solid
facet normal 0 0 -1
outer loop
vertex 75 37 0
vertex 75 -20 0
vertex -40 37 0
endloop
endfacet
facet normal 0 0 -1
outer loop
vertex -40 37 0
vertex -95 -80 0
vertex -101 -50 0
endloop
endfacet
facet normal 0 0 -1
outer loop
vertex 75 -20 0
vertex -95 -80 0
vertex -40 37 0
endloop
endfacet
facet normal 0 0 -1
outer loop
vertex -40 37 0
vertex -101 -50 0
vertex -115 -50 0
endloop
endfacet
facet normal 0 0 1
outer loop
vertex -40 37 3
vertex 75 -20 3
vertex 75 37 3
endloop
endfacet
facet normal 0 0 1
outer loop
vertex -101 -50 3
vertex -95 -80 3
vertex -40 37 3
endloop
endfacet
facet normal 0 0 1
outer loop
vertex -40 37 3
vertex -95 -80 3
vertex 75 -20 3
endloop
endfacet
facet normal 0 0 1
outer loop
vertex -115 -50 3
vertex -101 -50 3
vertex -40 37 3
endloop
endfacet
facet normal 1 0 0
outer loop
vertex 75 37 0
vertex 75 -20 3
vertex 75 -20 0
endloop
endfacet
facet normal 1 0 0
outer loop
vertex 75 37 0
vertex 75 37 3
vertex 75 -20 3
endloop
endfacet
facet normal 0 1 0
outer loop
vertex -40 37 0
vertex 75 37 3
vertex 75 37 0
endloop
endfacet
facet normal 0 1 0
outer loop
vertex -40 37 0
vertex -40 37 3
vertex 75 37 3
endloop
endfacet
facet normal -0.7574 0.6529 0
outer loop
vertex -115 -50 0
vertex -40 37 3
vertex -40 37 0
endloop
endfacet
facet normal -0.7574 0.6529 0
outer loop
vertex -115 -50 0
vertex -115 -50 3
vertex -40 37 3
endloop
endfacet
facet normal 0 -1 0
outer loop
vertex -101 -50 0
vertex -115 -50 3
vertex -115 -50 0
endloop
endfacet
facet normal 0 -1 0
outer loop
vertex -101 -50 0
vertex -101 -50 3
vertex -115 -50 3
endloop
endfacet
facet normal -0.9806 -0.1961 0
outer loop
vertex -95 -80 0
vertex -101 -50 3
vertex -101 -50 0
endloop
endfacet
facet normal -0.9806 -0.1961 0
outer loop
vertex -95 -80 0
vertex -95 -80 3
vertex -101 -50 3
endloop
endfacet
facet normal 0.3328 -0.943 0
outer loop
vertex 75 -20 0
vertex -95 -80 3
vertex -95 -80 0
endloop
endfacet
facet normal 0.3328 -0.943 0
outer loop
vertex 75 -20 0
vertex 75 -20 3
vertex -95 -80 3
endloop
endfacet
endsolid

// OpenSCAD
$fn = 100;
linear_extrude(height = 3, center = false, convexity = undef, twist = undef, slices = undef, scale = 1, $fn = 20)
{
  polygon(points = [[-40, 37], [-115, -50], [-101, -50], [-95, -80], [75, -20], [75, 37]], paths = undef, convexity = 1);
}
